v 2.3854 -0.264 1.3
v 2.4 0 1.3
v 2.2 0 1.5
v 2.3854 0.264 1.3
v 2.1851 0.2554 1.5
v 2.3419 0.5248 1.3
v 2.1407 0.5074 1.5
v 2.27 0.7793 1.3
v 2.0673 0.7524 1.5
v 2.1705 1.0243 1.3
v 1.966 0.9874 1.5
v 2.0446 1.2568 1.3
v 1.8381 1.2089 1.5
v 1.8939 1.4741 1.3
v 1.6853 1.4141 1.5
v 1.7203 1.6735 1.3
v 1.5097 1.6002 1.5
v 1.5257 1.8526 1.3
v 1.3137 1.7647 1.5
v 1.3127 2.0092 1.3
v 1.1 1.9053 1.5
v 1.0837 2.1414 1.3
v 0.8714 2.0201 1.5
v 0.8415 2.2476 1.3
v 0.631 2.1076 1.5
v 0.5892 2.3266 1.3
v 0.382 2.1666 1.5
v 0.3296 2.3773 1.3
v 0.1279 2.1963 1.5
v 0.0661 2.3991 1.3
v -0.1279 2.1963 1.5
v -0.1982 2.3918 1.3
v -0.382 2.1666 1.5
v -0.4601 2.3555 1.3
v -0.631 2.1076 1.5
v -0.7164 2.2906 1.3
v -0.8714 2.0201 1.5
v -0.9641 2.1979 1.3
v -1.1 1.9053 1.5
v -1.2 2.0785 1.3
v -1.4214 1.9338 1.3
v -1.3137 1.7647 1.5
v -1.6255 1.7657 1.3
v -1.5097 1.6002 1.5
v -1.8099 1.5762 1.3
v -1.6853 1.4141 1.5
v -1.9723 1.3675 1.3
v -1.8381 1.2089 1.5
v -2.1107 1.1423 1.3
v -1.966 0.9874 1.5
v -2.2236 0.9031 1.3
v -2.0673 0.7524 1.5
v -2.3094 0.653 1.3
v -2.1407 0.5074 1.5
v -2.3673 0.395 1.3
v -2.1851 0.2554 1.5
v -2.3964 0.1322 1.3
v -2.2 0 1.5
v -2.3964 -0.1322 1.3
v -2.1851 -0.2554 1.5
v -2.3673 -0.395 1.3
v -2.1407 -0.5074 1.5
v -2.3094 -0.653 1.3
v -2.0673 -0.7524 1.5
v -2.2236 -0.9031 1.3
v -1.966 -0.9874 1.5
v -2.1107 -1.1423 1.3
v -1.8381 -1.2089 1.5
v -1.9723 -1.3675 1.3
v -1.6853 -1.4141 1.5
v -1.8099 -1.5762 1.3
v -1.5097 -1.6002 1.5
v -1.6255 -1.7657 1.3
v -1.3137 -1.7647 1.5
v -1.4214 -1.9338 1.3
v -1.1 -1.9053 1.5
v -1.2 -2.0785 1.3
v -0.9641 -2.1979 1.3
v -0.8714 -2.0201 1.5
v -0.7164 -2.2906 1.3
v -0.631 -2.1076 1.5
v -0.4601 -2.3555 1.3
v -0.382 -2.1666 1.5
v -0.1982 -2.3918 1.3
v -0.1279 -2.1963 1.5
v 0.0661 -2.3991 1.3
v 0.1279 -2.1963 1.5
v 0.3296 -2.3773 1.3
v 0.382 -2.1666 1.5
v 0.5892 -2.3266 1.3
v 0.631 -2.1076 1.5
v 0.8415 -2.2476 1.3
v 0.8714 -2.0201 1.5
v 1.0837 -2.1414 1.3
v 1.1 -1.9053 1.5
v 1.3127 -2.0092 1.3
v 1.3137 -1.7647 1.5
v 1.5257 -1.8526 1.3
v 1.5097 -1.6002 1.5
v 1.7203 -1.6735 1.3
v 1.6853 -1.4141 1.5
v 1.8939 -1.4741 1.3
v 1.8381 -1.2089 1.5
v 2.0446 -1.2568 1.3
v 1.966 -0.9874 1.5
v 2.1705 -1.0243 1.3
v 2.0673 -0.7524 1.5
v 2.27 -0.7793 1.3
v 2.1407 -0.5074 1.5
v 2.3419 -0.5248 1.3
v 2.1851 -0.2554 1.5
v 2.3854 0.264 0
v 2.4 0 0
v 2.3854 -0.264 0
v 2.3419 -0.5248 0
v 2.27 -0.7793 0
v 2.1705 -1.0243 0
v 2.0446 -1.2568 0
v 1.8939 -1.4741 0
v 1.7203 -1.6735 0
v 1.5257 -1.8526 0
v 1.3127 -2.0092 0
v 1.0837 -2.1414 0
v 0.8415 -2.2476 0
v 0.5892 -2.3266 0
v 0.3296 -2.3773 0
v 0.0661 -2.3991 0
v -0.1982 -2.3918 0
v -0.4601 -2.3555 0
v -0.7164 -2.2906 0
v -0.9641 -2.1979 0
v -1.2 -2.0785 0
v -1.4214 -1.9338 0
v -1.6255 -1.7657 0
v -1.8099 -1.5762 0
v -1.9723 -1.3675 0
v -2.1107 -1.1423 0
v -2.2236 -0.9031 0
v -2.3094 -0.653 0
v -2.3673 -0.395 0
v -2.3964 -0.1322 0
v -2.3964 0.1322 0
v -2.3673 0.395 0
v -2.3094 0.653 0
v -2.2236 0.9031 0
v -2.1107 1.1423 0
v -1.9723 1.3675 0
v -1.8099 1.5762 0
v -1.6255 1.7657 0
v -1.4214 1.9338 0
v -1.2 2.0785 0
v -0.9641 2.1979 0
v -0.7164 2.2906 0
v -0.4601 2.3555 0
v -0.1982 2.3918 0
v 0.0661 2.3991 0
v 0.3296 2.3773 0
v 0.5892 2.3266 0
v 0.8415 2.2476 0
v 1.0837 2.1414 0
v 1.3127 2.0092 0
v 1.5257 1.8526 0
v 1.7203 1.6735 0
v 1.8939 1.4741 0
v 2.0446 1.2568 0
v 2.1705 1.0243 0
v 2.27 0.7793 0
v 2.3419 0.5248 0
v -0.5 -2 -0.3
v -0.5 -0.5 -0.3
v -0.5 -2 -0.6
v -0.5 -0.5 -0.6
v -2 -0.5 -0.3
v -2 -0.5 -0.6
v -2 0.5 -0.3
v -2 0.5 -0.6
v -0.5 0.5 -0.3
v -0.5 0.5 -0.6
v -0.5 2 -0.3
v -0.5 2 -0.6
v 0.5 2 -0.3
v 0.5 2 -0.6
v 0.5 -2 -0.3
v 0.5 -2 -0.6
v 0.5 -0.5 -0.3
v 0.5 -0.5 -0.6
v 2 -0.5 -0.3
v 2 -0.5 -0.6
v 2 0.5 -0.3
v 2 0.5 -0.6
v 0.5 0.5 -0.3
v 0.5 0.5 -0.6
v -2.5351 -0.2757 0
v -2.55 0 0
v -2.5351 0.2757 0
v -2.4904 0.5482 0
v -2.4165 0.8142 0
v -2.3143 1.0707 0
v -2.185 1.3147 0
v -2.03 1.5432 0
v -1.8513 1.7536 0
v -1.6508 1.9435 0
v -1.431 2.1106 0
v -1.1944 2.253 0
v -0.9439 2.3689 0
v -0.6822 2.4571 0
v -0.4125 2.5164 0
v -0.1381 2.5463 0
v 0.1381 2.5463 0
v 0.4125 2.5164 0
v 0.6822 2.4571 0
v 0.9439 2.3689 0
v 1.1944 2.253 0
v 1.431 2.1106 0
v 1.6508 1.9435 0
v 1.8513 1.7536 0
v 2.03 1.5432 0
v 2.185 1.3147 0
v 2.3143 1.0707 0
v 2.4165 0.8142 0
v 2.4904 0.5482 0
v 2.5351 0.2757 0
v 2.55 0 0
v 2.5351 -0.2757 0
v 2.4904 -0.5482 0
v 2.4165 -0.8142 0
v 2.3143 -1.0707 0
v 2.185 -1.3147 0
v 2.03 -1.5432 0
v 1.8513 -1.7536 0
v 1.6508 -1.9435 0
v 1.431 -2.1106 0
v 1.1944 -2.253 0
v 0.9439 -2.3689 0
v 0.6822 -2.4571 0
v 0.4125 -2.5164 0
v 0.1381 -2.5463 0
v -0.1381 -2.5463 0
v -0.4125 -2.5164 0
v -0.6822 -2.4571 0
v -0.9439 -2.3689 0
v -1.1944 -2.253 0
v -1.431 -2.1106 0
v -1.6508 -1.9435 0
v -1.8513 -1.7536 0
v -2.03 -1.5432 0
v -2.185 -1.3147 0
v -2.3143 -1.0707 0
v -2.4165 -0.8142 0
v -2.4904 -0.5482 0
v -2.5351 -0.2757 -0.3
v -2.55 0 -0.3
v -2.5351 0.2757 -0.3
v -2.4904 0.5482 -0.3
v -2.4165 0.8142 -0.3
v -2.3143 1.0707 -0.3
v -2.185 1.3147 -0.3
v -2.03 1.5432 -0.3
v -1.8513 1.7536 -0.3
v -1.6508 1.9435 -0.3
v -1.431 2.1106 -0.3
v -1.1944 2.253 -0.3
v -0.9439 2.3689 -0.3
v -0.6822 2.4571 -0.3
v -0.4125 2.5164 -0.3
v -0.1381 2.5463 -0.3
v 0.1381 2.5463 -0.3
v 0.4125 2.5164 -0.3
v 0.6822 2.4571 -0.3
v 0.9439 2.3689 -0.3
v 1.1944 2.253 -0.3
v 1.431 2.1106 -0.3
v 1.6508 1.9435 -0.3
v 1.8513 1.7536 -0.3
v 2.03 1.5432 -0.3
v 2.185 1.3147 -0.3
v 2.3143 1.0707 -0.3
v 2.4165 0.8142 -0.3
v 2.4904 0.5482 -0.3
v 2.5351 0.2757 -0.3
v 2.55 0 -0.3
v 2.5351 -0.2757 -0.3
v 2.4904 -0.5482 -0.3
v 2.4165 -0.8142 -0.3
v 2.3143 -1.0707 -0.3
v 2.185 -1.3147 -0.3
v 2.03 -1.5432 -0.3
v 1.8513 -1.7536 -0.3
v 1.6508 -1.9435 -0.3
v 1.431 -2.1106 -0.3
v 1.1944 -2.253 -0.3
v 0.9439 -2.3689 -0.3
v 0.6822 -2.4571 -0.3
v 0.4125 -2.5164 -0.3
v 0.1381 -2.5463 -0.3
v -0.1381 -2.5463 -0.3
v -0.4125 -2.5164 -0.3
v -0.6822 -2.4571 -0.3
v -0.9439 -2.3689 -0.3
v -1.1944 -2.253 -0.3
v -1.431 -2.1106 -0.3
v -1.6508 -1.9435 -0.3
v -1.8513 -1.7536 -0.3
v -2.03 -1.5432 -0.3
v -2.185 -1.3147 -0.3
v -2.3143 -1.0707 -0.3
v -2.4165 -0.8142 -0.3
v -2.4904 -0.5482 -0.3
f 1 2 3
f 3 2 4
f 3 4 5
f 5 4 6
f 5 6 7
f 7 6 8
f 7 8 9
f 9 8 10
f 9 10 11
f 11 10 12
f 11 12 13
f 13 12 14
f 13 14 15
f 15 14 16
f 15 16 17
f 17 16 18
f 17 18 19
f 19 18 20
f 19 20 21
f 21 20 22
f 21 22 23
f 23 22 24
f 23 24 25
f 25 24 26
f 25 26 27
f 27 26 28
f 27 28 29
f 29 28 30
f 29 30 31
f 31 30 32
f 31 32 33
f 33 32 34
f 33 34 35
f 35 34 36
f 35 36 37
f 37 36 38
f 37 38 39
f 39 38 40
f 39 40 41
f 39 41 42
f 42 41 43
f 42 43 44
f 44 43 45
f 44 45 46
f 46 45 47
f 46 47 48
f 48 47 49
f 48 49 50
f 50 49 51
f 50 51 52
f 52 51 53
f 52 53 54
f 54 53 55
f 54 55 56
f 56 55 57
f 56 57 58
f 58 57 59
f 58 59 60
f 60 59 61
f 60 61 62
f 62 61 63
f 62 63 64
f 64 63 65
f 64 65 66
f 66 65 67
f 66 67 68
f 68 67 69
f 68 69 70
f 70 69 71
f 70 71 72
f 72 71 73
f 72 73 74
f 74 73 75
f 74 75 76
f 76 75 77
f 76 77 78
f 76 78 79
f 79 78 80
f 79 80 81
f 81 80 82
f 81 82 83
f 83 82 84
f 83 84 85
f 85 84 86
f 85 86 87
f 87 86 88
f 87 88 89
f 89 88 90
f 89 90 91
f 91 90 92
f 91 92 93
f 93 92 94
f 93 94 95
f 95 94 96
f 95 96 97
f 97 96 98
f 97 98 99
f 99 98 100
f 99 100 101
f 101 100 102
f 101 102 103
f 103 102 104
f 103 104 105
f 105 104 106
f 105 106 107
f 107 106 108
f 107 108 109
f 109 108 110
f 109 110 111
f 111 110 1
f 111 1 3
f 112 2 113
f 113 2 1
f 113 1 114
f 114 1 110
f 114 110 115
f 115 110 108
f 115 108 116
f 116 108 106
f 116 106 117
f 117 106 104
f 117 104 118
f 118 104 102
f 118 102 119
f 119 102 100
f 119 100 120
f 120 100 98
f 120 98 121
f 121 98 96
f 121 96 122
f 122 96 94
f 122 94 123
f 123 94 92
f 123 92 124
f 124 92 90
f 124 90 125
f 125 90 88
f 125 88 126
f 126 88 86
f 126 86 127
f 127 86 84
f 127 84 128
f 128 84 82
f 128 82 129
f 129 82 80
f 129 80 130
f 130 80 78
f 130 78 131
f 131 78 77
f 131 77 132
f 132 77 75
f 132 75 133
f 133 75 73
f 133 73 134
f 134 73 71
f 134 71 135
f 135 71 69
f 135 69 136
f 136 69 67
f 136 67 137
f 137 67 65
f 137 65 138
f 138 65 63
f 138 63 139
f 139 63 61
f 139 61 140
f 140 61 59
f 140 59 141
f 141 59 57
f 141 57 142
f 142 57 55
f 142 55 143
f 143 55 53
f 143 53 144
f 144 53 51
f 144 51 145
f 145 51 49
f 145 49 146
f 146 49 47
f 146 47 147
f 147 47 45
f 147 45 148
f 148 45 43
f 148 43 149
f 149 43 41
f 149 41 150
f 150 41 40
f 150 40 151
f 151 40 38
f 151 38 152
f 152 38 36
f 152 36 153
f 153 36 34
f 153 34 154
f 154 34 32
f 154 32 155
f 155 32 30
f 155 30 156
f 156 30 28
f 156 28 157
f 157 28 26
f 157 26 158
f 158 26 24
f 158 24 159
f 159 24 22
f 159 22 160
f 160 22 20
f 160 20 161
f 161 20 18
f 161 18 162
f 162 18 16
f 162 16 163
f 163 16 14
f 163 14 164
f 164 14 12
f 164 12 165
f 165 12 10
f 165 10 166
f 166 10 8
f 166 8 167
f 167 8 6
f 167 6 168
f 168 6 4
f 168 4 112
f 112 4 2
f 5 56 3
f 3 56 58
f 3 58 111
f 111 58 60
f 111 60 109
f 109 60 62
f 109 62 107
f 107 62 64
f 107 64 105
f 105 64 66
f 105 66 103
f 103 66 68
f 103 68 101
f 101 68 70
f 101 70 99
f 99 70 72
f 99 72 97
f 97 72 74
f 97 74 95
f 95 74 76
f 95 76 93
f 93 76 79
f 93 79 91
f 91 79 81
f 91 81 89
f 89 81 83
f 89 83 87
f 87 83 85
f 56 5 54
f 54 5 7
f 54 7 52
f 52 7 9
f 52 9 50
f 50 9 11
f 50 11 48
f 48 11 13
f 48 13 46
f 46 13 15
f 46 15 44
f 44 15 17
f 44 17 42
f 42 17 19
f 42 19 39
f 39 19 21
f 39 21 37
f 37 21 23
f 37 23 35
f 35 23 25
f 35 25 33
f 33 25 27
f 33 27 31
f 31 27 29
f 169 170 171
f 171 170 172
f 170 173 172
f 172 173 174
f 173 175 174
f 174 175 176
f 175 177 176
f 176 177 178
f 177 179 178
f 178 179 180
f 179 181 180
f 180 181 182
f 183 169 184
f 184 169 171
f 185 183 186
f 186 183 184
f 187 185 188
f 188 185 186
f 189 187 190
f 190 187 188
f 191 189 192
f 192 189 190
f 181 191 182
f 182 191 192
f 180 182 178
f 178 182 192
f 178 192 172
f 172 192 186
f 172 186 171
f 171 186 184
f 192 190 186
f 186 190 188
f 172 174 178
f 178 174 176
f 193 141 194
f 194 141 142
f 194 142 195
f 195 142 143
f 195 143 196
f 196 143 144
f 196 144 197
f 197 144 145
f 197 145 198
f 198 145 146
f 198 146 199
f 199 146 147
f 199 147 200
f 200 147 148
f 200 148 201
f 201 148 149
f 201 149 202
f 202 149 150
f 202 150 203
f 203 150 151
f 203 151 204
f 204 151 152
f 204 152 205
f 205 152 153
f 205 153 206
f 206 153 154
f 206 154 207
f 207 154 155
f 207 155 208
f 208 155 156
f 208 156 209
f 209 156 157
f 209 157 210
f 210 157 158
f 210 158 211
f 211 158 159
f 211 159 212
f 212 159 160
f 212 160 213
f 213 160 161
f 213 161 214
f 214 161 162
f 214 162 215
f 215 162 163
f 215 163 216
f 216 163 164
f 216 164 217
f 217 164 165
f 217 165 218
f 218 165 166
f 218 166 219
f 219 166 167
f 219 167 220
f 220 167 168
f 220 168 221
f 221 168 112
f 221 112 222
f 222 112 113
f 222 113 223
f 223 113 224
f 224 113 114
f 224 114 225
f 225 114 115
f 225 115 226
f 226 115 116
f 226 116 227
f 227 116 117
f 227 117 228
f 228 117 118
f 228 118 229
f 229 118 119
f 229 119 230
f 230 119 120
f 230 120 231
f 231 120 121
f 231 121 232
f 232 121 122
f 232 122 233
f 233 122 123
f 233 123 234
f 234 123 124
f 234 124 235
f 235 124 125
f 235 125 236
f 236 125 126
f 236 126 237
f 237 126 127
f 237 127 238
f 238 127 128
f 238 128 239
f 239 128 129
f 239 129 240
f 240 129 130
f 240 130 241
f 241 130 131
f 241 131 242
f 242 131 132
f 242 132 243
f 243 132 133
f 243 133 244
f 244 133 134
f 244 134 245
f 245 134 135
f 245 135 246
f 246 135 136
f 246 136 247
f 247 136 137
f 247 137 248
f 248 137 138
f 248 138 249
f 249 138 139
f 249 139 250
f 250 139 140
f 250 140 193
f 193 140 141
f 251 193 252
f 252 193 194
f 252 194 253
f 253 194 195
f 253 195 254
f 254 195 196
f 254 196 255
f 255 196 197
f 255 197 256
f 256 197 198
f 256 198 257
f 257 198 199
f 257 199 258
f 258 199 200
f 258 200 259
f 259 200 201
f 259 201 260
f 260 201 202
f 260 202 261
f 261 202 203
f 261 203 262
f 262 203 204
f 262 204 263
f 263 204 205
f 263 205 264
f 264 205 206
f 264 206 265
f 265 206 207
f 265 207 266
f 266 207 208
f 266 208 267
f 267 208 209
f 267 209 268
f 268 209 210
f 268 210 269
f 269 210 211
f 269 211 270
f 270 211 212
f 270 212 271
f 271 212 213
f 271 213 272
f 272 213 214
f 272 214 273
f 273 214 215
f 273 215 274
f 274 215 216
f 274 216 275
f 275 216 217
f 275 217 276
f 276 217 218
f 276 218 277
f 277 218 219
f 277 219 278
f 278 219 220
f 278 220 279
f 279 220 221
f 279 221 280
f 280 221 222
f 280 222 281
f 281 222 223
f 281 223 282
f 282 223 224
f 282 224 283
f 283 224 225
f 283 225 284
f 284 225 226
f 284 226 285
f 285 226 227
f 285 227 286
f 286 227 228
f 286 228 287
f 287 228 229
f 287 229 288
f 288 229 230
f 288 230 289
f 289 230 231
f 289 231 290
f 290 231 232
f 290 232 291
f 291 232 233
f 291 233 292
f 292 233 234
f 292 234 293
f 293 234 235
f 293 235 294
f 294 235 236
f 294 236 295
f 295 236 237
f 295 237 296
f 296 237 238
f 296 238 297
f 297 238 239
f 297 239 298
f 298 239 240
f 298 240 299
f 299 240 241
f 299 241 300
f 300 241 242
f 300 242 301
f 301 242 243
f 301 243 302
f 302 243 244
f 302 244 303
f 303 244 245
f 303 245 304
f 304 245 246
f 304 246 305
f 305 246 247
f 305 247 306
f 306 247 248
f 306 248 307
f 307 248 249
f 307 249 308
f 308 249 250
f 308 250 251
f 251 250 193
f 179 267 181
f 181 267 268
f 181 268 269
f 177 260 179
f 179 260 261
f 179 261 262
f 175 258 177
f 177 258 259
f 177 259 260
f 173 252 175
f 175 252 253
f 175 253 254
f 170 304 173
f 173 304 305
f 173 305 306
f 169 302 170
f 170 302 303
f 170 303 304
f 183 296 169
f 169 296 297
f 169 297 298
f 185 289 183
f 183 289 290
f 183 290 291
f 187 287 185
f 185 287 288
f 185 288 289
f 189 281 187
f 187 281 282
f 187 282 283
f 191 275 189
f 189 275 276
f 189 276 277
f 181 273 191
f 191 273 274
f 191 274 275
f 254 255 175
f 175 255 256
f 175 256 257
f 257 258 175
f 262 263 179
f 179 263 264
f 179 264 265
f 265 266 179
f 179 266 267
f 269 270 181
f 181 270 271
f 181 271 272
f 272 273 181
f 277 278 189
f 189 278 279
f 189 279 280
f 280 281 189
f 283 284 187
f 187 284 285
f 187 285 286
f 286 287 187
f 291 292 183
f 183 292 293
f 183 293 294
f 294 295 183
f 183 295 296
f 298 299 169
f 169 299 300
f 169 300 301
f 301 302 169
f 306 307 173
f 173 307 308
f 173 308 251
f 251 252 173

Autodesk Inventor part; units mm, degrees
ref_plane "YZ Plane" through (0, 0, 0) normal (1, 0, 0) x (0, 1, 0)
ref_plane "XZ Plane" through (0, 0, 0) normal (0, 1, 0) x (-1, 0, 0)
ref_plane "XY Plane" through (0, 0, 0) normal (0, 0, 1) x (1, 0, 0)
sketch "Esboço1" plane through (0, 0, 0) normal (0, 0, 1) x (1, 0, 0)
  circle A0 centre (0, 0) radius 2.4
  dimension "d0" = 4.8
extrude "Extrusão1" add sketch "Esboço1" along normal blind 1.5
sketch "Esboço2" plane through (0, 0, 0) normal (0, 0, -1) x (-1, 0, 0)
  circle A0 centre (0, 0) radius 2.55
  dimension "d3" = 5.1
extrude "Extrusão2" add sketch "Esboço2" along normal blind 0.3
sketch "Esboço4" plane through (0, 0, -0.3) normal (0, 0, -1) x (-1, 0, 0)
  line L0 (-0.5, 2) -> (0.5, 2)
  line L1 (0.5, 2) -> (0.5, -2)
  line L2 (0.5, -2) -> (-0.5, -2)
  line L3 (-0.5, -2) -> (-0.5, 2)
  line L4 (-2, 0.5) -> (2, 0.5)
  line L5 (2, 0.5) -> (2, -0.5)
  line L6 (2, -0.5) -> (-2, -0.5)
  line L7 (-2, -0.5) -> (-2, 0.5)
  point P0 (0, 0)
  point P1 (-2, 0)
  point P2 (0, 0.5)
  point P3 (0, 2)
  point P4 (0.5, 0)
  point P5 (-0.5, 0.5)
  point P6 (-0.5, -0.5)
  point P7 (0.5, -0.5)
  point P8 (0.5, 0.5)
  dimension "d6" = 1
  dimension "d7" = 4
  dimension "d8" = 4
  dimension "d9" = 1
extrude "Extrusão3" add sketch "Esboço4" along normal blind 0.3 and the other way blind 0.3
chamfer "Chanfro1" distance 0.2 angle 45 1 edges at (-2.4, 0, 1.5)
properties part number "botão final"
